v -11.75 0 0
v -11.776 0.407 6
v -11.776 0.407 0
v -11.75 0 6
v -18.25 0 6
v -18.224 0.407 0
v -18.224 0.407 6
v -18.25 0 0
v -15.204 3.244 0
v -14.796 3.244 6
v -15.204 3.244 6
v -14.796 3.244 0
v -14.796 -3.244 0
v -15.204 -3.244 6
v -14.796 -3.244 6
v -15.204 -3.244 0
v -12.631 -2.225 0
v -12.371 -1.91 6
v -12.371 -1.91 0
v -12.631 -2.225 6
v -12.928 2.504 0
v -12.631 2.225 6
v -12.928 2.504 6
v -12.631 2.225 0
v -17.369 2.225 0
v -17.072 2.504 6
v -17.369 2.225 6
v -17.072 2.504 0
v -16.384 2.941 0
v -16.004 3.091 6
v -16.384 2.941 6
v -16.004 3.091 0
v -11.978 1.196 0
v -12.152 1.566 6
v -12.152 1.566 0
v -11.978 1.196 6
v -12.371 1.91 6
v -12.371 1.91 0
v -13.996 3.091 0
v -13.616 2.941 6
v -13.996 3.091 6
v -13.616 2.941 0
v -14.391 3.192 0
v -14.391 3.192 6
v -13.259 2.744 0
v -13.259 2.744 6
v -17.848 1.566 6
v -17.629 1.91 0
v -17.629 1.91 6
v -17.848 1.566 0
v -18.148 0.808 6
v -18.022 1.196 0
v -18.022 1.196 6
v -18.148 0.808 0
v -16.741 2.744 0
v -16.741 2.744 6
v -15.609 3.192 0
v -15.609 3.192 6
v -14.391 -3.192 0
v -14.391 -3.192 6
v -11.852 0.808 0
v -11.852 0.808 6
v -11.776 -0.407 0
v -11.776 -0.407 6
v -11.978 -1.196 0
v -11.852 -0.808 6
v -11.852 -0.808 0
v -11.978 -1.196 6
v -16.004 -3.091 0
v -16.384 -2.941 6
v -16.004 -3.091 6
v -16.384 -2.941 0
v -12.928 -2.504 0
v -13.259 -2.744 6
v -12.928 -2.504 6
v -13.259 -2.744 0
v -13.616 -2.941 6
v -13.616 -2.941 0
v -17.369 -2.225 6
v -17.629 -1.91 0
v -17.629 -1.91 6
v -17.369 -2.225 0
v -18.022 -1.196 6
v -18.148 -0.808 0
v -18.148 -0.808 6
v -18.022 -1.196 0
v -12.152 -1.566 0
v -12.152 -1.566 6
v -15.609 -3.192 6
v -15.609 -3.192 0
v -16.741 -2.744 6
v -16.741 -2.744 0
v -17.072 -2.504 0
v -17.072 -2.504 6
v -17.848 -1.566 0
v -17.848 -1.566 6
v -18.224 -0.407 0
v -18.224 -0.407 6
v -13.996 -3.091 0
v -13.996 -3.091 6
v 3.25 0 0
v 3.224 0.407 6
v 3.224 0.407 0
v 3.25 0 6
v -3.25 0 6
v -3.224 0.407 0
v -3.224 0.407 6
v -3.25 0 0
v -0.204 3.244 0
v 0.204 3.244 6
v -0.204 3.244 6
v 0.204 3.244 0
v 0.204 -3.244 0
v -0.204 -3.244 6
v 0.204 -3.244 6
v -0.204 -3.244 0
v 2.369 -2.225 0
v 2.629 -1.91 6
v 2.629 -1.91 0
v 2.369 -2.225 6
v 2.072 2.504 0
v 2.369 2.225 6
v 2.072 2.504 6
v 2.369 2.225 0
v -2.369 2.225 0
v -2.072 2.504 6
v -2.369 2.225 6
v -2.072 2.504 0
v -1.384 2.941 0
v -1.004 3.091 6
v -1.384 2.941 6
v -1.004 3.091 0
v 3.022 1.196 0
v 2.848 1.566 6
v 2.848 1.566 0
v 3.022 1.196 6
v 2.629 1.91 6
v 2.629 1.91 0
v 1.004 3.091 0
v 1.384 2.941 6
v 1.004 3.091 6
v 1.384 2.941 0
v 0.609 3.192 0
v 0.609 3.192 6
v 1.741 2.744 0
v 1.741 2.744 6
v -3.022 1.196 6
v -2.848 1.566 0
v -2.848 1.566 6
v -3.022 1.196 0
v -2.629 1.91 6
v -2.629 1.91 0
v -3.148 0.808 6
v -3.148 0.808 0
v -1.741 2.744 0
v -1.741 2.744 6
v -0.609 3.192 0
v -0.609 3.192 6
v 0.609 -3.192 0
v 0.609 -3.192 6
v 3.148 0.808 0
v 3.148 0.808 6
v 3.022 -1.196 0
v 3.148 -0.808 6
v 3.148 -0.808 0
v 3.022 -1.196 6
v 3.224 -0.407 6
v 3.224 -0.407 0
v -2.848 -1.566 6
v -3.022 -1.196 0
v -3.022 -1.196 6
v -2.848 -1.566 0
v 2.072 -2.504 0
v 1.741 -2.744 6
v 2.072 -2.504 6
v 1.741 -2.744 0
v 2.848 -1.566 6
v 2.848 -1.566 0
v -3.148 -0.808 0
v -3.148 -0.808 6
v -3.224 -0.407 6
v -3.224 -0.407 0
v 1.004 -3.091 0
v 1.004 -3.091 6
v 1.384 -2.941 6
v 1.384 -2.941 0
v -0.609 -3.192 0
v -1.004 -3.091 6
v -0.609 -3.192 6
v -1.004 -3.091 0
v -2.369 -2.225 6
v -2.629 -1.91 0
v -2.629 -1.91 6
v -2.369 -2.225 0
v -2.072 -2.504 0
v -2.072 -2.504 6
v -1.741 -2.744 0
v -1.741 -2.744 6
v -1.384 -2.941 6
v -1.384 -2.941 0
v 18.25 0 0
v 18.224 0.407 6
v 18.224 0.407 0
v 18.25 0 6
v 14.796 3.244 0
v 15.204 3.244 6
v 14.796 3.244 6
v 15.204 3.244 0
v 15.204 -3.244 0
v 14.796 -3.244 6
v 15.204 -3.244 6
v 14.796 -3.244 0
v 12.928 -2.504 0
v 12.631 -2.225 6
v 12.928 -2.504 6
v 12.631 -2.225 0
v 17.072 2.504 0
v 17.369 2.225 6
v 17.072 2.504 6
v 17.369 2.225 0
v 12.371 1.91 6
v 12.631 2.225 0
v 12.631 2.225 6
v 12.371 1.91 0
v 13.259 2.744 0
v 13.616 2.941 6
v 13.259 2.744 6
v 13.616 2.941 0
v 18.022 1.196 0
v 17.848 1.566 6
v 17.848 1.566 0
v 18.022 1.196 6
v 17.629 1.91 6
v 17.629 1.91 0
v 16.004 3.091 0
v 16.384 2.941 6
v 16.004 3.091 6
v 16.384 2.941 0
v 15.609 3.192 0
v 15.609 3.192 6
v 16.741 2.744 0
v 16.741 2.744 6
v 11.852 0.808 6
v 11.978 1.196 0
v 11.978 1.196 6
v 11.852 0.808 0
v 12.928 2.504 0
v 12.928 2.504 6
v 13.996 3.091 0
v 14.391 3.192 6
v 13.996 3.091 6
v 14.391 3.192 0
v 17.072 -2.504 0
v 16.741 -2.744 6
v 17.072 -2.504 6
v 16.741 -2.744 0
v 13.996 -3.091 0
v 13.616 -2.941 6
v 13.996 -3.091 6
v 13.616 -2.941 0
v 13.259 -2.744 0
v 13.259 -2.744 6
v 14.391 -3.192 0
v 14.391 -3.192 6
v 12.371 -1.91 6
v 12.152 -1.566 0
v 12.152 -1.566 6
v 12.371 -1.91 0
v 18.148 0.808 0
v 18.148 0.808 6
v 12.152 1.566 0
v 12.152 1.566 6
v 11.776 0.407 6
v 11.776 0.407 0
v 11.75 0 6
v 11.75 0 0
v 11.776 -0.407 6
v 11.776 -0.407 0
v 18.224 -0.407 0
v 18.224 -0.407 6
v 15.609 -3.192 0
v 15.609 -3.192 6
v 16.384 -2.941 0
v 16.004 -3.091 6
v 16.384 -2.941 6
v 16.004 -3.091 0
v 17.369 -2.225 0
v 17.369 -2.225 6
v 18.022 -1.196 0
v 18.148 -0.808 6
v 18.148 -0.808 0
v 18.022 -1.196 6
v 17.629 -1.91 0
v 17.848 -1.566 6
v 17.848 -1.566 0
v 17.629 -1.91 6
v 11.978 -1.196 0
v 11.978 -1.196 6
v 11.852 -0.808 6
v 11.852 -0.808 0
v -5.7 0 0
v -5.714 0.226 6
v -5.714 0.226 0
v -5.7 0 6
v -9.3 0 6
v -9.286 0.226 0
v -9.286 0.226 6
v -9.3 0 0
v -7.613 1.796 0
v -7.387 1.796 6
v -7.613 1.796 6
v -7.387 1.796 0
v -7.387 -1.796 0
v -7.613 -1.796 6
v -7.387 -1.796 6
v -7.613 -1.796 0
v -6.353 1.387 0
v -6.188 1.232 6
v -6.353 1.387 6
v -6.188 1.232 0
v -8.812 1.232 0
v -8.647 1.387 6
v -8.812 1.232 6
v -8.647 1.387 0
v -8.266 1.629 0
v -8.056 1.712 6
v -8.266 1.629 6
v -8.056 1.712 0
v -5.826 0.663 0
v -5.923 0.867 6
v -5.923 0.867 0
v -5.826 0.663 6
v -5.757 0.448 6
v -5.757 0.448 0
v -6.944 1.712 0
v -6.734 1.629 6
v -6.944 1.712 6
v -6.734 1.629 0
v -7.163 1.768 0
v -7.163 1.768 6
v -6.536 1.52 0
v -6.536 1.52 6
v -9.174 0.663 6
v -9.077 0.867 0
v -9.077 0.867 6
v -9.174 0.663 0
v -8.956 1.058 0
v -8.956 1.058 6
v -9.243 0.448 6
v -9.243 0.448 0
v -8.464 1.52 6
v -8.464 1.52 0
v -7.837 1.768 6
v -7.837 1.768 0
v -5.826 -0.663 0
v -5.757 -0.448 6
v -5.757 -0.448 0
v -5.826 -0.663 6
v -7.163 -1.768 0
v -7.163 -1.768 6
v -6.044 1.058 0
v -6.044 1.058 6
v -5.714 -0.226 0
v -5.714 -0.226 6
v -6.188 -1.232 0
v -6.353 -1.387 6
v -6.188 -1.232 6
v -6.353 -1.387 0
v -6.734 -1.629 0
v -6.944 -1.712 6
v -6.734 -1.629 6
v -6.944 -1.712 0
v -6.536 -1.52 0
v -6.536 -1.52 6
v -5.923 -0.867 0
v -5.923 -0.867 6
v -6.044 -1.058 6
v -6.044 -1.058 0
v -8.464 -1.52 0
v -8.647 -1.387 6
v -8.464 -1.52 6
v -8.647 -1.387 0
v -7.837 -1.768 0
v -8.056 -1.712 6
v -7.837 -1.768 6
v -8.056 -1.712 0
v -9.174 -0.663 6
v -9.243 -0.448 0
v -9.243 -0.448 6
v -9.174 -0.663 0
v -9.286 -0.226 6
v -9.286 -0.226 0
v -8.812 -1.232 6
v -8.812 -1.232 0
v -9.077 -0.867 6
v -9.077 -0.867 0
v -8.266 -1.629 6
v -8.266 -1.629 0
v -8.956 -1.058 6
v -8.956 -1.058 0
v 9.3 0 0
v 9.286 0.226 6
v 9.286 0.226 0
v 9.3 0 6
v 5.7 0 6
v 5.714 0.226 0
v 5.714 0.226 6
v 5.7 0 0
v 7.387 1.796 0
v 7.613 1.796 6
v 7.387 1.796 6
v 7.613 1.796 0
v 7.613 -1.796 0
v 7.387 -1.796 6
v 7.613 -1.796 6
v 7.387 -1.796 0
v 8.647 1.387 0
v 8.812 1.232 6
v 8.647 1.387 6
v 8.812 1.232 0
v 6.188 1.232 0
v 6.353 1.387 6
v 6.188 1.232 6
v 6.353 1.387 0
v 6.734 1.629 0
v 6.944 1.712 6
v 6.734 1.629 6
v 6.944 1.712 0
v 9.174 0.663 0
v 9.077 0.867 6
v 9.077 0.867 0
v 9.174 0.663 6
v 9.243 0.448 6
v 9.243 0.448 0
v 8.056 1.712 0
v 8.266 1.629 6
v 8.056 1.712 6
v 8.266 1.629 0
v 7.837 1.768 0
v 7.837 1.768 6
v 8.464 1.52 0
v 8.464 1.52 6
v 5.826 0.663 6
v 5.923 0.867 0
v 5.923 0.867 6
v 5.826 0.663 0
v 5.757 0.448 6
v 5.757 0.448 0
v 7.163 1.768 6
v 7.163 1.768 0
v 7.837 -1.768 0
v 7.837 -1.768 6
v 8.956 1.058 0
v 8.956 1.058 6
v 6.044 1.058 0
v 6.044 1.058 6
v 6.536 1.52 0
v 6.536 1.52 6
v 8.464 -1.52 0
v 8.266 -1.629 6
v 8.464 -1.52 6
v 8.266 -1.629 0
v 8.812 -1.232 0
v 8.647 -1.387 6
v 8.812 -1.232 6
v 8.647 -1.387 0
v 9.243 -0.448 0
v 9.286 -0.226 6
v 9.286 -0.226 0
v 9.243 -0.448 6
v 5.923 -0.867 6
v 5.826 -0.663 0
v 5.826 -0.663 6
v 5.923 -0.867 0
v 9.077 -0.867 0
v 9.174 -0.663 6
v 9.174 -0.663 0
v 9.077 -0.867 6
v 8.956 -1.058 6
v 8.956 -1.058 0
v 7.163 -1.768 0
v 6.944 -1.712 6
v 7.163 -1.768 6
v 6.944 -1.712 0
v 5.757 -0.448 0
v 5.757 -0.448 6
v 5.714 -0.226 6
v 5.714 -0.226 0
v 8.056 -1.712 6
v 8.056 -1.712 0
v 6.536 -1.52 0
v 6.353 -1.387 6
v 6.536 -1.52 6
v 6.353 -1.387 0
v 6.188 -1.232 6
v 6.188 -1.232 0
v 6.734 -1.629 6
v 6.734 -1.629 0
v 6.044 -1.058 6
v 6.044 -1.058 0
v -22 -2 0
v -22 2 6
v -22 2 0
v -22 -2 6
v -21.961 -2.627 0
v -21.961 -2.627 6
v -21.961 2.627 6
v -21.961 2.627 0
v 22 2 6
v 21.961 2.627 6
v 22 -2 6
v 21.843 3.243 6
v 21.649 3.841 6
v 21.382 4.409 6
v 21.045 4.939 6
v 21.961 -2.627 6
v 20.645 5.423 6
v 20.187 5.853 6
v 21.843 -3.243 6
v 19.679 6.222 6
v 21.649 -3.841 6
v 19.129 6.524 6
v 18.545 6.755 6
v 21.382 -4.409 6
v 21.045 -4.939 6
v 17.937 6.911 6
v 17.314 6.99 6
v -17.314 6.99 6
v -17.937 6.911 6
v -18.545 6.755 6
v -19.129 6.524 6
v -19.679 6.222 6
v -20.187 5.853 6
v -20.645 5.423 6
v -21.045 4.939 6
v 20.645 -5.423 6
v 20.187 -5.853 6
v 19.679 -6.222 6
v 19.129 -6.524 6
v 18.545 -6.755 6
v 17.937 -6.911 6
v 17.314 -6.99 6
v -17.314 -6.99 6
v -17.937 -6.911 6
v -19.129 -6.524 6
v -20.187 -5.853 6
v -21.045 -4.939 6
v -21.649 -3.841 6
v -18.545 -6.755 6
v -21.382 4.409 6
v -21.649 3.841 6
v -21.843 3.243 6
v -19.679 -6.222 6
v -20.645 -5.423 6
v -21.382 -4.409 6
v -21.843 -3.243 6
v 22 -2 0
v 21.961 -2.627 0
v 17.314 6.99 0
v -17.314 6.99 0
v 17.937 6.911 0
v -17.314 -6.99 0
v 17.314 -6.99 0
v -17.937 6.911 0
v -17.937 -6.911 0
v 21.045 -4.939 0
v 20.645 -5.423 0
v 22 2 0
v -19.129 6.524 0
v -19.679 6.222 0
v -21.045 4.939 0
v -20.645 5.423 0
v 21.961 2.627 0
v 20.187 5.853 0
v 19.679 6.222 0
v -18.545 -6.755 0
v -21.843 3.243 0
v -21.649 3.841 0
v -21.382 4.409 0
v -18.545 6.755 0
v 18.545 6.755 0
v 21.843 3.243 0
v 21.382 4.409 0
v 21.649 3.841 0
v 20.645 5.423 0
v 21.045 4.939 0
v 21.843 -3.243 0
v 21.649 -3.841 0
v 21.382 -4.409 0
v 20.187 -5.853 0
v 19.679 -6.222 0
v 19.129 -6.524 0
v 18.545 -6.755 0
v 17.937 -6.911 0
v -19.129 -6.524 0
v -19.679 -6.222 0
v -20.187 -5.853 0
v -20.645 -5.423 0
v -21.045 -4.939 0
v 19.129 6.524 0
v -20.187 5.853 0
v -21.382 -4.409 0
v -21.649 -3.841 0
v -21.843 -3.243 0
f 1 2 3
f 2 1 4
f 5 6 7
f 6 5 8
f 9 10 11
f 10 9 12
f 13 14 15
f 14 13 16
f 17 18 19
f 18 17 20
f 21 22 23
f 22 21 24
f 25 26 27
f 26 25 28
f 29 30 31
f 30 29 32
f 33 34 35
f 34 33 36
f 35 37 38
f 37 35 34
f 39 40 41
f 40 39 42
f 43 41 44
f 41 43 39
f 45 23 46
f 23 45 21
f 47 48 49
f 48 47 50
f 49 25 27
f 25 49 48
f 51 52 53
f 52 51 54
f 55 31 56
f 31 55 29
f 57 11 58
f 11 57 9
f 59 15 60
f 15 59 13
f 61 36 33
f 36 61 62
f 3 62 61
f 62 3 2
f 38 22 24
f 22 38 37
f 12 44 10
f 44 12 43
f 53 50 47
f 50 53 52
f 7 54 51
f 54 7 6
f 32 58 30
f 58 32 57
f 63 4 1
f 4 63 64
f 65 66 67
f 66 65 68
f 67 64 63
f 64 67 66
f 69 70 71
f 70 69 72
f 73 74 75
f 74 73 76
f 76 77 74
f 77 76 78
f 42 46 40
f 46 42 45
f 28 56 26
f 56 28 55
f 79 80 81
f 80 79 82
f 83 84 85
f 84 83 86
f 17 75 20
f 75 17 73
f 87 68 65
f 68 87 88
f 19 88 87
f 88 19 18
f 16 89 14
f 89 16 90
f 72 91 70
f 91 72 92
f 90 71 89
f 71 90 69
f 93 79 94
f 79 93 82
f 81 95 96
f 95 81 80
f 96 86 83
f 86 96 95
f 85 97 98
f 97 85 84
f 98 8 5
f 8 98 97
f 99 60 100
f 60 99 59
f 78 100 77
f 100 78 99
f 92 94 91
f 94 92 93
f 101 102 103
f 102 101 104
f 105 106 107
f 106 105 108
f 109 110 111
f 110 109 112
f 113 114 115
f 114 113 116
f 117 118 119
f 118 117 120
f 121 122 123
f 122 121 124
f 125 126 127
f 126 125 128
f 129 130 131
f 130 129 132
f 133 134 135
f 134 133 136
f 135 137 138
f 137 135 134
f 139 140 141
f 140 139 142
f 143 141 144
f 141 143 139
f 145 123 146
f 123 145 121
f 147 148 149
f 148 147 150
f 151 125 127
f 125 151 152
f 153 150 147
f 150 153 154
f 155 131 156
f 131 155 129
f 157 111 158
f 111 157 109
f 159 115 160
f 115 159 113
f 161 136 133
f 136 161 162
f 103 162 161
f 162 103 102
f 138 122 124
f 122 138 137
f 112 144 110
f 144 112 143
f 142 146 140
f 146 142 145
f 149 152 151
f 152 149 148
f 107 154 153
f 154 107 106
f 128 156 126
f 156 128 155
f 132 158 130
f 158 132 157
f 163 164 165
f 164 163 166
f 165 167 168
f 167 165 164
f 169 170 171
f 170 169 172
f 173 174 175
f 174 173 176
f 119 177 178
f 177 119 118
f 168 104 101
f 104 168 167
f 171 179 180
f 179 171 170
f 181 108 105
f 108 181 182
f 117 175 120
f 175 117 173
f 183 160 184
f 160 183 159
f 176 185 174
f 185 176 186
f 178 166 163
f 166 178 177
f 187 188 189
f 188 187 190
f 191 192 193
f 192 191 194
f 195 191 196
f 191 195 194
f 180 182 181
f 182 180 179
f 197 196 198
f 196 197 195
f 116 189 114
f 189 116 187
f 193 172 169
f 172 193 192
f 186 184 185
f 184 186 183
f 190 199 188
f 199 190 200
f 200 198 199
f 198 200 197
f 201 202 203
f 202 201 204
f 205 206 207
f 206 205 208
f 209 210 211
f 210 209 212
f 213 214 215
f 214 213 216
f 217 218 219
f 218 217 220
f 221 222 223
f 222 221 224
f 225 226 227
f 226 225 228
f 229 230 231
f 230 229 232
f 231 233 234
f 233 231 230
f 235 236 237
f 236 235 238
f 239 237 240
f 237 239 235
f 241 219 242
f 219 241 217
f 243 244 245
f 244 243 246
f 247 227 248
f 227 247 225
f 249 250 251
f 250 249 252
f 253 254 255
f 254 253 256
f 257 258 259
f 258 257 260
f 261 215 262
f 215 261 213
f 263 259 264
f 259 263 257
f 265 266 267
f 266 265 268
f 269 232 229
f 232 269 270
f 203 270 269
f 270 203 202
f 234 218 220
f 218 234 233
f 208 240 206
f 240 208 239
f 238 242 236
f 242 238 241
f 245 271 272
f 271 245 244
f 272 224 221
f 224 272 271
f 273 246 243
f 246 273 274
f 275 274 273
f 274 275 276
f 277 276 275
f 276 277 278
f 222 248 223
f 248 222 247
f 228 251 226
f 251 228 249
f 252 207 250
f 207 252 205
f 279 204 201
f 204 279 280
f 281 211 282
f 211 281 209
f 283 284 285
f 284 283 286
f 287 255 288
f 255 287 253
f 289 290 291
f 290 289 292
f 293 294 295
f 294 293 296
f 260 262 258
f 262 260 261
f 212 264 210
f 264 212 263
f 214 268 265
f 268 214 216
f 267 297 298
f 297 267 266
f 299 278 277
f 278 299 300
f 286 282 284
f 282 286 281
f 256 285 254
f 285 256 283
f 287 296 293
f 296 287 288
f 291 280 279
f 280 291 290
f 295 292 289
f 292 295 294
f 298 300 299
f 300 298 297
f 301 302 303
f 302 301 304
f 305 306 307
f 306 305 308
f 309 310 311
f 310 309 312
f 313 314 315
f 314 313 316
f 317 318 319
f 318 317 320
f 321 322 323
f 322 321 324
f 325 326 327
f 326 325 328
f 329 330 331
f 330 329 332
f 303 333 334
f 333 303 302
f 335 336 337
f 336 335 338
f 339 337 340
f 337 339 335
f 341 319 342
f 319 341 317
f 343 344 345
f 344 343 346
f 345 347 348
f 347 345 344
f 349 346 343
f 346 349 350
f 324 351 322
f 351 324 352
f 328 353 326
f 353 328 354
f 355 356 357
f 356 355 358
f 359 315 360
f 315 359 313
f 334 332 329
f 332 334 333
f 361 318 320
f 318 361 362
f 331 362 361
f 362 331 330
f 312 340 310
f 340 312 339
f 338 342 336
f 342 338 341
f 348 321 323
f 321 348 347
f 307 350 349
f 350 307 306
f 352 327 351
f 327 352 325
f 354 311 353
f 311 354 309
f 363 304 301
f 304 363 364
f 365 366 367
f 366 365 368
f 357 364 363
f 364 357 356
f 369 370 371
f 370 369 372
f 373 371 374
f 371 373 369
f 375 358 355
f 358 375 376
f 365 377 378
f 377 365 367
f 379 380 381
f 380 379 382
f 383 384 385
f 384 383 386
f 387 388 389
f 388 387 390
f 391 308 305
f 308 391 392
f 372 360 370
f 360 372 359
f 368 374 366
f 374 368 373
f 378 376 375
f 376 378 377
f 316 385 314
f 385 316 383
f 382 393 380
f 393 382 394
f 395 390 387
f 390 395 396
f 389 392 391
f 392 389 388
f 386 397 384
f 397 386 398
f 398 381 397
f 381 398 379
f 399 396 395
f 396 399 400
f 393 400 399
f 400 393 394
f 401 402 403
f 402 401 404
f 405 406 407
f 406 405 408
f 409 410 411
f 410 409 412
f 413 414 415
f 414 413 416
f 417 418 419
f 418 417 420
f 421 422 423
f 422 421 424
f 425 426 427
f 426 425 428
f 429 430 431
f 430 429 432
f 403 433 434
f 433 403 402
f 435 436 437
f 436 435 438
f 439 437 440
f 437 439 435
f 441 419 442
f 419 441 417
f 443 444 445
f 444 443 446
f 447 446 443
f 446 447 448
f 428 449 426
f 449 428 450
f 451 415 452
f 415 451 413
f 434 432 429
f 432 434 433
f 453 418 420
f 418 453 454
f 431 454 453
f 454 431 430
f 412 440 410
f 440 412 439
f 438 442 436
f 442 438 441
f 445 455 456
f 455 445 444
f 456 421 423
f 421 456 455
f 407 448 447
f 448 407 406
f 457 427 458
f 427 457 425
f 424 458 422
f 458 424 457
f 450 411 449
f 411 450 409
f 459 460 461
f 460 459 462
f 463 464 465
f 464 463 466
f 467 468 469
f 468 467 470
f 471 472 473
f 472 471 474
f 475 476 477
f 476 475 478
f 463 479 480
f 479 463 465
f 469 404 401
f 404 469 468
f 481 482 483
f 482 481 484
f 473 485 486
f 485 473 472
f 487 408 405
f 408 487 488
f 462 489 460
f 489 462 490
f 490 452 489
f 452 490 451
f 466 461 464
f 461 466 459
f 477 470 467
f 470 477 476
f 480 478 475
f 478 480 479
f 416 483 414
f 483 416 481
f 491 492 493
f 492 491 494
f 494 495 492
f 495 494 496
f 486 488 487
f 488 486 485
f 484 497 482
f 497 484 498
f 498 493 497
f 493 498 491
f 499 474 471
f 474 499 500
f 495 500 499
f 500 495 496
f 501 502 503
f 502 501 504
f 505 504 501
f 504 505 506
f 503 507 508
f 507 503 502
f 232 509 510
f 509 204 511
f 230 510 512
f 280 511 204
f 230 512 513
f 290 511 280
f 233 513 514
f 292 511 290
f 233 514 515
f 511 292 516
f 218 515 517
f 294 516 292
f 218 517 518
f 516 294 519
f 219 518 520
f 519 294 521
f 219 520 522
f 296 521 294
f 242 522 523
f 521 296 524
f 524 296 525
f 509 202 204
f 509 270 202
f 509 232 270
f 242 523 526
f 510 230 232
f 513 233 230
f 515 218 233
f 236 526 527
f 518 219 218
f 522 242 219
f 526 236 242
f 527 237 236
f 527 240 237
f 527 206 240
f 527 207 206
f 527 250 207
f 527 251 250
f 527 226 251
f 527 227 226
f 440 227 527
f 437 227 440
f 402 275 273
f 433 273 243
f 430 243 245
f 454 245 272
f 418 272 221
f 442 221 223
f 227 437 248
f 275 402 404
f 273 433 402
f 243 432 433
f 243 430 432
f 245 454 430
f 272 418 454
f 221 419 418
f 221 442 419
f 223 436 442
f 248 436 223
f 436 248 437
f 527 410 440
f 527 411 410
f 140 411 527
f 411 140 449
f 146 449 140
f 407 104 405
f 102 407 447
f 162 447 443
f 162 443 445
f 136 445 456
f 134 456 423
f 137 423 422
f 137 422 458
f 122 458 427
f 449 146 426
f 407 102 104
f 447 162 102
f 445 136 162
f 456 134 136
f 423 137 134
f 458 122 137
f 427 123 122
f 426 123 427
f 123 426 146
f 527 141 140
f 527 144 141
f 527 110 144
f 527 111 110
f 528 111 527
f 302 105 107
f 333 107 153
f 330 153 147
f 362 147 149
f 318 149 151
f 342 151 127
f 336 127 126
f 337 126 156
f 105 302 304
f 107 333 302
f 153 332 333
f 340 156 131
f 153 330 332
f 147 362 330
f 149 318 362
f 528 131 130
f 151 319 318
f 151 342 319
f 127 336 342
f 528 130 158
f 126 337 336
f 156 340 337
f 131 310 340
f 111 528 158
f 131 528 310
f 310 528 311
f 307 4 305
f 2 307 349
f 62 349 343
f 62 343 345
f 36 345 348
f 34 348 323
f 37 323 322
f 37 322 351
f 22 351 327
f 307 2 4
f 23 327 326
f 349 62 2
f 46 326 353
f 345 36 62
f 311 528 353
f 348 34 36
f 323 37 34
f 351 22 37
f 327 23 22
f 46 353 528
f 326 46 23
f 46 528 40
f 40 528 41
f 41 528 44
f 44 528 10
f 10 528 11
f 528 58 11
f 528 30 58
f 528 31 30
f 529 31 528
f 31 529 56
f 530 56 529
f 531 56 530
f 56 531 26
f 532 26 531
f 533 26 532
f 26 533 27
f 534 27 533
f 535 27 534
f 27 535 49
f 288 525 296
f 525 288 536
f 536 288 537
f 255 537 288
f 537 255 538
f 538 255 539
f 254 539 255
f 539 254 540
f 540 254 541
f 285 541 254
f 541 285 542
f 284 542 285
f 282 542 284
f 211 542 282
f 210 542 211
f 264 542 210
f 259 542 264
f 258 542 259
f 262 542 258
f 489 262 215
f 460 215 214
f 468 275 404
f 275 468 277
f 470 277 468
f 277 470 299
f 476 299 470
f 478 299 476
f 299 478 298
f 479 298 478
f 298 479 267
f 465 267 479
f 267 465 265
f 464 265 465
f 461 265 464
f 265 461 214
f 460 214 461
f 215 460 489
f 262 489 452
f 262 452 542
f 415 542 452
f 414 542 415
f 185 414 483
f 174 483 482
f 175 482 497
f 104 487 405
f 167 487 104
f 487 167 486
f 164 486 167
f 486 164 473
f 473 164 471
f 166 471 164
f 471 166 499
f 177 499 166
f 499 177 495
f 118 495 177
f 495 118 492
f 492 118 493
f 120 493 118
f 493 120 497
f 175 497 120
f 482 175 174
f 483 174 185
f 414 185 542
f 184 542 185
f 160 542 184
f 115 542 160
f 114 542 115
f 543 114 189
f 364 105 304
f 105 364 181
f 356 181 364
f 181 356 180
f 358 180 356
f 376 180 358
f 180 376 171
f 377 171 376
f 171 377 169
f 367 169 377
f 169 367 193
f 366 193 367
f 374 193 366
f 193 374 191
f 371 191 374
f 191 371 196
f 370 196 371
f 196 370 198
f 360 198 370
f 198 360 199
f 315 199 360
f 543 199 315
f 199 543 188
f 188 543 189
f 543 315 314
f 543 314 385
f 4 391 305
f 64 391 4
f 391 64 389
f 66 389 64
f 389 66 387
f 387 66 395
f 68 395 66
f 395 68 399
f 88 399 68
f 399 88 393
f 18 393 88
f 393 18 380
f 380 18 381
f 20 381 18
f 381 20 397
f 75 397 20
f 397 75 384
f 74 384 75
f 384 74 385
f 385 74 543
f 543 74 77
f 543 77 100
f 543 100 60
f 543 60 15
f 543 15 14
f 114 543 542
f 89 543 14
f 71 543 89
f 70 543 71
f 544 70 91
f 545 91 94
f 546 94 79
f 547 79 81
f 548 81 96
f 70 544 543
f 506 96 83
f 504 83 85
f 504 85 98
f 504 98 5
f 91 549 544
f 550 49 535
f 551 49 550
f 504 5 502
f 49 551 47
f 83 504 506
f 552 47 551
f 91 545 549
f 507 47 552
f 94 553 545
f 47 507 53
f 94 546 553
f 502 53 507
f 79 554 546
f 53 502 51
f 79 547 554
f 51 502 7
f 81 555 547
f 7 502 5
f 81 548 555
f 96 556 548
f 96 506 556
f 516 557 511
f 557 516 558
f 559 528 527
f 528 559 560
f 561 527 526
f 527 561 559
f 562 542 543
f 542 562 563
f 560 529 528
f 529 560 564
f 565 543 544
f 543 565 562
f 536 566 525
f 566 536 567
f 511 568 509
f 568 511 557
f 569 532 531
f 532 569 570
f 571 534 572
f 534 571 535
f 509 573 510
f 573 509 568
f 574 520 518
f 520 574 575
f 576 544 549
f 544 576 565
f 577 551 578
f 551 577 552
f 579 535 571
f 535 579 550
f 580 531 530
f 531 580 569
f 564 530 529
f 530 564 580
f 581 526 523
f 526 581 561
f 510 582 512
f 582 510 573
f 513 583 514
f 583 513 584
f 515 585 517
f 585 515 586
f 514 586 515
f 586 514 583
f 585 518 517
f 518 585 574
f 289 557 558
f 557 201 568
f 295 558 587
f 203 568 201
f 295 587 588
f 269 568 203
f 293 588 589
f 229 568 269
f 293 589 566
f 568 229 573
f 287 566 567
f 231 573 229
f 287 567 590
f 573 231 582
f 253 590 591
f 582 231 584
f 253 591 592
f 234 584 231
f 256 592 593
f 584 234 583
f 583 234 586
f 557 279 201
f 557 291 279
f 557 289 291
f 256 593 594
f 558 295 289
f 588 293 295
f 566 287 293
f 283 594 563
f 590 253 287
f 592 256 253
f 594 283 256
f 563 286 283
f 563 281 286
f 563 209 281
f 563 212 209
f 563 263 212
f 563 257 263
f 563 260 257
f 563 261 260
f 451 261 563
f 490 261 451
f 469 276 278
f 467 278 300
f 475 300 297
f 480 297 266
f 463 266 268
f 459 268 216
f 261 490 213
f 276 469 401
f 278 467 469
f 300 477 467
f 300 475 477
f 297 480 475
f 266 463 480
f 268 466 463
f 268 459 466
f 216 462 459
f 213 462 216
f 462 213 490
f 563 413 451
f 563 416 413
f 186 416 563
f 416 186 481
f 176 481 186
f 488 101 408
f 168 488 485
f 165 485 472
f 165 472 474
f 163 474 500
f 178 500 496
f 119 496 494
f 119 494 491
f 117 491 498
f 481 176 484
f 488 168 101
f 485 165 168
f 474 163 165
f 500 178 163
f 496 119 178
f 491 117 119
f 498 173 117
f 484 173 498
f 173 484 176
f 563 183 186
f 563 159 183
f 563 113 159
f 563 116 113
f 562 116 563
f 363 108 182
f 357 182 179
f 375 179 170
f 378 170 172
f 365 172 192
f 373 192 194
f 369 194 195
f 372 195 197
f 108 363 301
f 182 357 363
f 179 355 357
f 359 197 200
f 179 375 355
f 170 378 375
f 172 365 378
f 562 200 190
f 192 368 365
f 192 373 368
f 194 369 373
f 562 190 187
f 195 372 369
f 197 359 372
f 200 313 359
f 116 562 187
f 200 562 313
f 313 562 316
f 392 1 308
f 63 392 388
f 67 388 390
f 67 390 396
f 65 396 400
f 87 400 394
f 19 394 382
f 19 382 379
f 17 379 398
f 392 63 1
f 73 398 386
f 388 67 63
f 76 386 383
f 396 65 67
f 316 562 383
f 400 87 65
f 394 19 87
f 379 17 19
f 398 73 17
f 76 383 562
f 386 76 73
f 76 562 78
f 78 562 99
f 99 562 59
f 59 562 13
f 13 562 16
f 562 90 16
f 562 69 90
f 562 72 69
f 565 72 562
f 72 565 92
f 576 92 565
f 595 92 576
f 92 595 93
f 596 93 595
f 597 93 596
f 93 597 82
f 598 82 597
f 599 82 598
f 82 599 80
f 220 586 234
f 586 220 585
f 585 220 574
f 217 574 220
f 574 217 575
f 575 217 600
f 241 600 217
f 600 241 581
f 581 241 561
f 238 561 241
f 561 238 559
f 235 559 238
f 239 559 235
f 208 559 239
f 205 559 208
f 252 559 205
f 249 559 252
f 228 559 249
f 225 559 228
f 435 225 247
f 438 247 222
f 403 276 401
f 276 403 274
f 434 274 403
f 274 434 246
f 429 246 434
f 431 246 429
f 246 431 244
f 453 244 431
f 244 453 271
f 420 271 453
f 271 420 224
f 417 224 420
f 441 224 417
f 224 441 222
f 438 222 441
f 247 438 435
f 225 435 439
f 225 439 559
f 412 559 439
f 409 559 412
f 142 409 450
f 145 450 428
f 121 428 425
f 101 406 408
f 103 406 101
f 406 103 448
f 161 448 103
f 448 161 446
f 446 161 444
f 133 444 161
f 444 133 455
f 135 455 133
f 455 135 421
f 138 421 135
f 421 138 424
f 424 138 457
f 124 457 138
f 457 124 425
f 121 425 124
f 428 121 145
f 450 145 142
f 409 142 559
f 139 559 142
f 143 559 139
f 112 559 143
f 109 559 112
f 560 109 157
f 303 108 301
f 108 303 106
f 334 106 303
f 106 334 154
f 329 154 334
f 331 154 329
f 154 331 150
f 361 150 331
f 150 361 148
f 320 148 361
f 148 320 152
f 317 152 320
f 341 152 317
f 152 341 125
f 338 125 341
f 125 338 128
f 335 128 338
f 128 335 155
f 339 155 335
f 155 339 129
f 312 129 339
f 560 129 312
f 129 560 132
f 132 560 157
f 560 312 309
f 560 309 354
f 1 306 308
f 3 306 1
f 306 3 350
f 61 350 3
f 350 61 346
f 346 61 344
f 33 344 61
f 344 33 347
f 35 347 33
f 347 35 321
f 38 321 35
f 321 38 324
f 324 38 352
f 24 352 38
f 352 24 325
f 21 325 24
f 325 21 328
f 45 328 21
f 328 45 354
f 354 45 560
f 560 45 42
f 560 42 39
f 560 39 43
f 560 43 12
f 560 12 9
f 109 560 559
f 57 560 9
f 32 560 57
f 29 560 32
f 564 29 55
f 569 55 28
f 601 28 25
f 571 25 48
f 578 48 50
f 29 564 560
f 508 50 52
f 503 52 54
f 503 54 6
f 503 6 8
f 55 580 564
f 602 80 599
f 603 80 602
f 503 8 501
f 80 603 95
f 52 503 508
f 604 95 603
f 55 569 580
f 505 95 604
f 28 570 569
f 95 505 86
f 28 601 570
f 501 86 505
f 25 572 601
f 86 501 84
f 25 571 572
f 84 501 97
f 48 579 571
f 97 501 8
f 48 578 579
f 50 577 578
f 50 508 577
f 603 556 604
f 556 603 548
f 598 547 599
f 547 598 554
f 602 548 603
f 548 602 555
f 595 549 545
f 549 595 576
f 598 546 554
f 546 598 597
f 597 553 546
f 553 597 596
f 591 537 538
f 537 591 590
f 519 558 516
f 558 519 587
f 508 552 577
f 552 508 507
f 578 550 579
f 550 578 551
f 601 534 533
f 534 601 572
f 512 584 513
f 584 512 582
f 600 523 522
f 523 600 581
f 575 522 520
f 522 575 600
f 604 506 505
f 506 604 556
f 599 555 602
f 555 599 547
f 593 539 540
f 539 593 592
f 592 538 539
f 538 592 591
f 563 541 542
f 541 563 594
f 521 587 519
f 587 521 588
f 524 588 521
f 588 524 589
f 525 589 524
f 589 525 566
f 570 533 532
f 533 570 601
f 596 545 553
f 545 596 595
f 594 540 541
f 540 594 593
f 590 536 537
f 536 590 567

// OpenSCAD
$fn = 50;


difference() {
	union() {
		translate(v = [0, 0, 0]) {
			rotate(a = [0, 0, 0]) {
				hull() {
					translate(v = [-17.0000000000, 2.0000000000, 0]) {
						rotate(a = [0, 0, 0]) {
							translate(v = [0, 0, 0]) {
								rotate(a = [0, 0, 0]) {
									cylinder(h = 6, r = 5);
								}
							}
						}
					}
					translate(v = [17.0000000000, 2.0000000000, 0]) {
						rotate(a = [0, 0, 0]) {
							translate(v = [0, 0, 0]) {
								rotate(a = [0, 0, 0]) {
									cylinder(h = 6, r = 5);
								}
							}
						}
					}
					translate(v = [-17.0000000000, -2.0000000000, 0]) {
						rotate(a = [0, 0, 0]) {
							translate(v = [0, 0, 0]) {
								rotate(a = [0, 0, 0]) {
									cylinder(h = 6, r = 5);
								}
							}
						}
					}
					translate(v = [17.0000000000, -2.0000000000, 0]) {
						rotate(a = [0, 0, 0]) {
							translate(v = [0, 0, 0]) {
								rotate(a = [0, 0, 0]) {
									cylinder(h = 6, r = 5);
								}
							}
						}
					}
				}
			}
		}
	}
	union() {
		translate(v = [-15.0000000000, 0.0000000000, 0]) {
			rotate(a = [0, 0, 0]) {
				translate(v = [0, 0, -50]) {
					rotate(a = [0, 0, 0]) {
						cylinder(h = 100, r = 3.2500000000);
					}
				}
			}
		}
		translate(v = [0.0000000000, 0.0000000000, 0]) {
			rotate(a = [0, 0, 0]) {
				translate(v = [0, 0, -50]) {
					rotate(a = [0, 0, 0]) {
						cylinder(h = 100, r = 3.2500000000);
					}
				}
			}
		}
		translate(v = [15.0000000000, 0.0000000000, 0]) {
			rotate(a = [0, 0, 0]) {
				translate(v = [0, 0, -50]) {
					rotate(a = [0, 0, 0]) {
						cylinder(h = 100, r = 3.2500000000);
					}
				}
			}
		}
		translate(v = [-15.0000000000, 0.0000000000, 0]) {
			rotate(a = [0, 0, 0]) {
				translate(v = [0, 0, -50]) {
					rotate(a = [0, 0, 0]) {
						cylinder(h = 100, r = 1.8000000000);
					}
				}
			}
		}
		translate(v = [-7.5000000000, 0.0000000000, 0]) {
			rotate(a = [0, 0, 0]) {
				translate(v = [0, 0, -50]) {
					rotate(a = [0, 0, 0]) {
						cylinder(h = 100, r = 1.8000000000);
					}
				}
			}
		}
		translate(v = [0.0000000000, 0.0000000000, 0]) {
			rotate(a = [0, 0, 0]) {
				translate(v = [0, 0, -50]) {
					rotate(a = [0, 0, 0]) {
						cylinder(h = 100, r = 1.8000000000);
					}
				}
			}
		}
		translate(v = [7.5000000000, 0.0000000000, 0]) {
			rotate(a = [0, 0, 0]) {
				translate(v = [0, 0, -50]) {
					rotate(a = [0, 0, 0]) {
						cylinder(h = 100, r = 1.8000000000);
					}
				}
			}
		}
		translate(v = [15.0000000000, 0.0000000000, 0]) {
			rotate(a = [0, 0, 0]) {
				translate(v = [0, 0, -50]) {
					rotate(a = [0, 0, 0]) {
						cylinder(h = 100, r = 1.8000000000);
					}
				}
			}
		}
	}
}
